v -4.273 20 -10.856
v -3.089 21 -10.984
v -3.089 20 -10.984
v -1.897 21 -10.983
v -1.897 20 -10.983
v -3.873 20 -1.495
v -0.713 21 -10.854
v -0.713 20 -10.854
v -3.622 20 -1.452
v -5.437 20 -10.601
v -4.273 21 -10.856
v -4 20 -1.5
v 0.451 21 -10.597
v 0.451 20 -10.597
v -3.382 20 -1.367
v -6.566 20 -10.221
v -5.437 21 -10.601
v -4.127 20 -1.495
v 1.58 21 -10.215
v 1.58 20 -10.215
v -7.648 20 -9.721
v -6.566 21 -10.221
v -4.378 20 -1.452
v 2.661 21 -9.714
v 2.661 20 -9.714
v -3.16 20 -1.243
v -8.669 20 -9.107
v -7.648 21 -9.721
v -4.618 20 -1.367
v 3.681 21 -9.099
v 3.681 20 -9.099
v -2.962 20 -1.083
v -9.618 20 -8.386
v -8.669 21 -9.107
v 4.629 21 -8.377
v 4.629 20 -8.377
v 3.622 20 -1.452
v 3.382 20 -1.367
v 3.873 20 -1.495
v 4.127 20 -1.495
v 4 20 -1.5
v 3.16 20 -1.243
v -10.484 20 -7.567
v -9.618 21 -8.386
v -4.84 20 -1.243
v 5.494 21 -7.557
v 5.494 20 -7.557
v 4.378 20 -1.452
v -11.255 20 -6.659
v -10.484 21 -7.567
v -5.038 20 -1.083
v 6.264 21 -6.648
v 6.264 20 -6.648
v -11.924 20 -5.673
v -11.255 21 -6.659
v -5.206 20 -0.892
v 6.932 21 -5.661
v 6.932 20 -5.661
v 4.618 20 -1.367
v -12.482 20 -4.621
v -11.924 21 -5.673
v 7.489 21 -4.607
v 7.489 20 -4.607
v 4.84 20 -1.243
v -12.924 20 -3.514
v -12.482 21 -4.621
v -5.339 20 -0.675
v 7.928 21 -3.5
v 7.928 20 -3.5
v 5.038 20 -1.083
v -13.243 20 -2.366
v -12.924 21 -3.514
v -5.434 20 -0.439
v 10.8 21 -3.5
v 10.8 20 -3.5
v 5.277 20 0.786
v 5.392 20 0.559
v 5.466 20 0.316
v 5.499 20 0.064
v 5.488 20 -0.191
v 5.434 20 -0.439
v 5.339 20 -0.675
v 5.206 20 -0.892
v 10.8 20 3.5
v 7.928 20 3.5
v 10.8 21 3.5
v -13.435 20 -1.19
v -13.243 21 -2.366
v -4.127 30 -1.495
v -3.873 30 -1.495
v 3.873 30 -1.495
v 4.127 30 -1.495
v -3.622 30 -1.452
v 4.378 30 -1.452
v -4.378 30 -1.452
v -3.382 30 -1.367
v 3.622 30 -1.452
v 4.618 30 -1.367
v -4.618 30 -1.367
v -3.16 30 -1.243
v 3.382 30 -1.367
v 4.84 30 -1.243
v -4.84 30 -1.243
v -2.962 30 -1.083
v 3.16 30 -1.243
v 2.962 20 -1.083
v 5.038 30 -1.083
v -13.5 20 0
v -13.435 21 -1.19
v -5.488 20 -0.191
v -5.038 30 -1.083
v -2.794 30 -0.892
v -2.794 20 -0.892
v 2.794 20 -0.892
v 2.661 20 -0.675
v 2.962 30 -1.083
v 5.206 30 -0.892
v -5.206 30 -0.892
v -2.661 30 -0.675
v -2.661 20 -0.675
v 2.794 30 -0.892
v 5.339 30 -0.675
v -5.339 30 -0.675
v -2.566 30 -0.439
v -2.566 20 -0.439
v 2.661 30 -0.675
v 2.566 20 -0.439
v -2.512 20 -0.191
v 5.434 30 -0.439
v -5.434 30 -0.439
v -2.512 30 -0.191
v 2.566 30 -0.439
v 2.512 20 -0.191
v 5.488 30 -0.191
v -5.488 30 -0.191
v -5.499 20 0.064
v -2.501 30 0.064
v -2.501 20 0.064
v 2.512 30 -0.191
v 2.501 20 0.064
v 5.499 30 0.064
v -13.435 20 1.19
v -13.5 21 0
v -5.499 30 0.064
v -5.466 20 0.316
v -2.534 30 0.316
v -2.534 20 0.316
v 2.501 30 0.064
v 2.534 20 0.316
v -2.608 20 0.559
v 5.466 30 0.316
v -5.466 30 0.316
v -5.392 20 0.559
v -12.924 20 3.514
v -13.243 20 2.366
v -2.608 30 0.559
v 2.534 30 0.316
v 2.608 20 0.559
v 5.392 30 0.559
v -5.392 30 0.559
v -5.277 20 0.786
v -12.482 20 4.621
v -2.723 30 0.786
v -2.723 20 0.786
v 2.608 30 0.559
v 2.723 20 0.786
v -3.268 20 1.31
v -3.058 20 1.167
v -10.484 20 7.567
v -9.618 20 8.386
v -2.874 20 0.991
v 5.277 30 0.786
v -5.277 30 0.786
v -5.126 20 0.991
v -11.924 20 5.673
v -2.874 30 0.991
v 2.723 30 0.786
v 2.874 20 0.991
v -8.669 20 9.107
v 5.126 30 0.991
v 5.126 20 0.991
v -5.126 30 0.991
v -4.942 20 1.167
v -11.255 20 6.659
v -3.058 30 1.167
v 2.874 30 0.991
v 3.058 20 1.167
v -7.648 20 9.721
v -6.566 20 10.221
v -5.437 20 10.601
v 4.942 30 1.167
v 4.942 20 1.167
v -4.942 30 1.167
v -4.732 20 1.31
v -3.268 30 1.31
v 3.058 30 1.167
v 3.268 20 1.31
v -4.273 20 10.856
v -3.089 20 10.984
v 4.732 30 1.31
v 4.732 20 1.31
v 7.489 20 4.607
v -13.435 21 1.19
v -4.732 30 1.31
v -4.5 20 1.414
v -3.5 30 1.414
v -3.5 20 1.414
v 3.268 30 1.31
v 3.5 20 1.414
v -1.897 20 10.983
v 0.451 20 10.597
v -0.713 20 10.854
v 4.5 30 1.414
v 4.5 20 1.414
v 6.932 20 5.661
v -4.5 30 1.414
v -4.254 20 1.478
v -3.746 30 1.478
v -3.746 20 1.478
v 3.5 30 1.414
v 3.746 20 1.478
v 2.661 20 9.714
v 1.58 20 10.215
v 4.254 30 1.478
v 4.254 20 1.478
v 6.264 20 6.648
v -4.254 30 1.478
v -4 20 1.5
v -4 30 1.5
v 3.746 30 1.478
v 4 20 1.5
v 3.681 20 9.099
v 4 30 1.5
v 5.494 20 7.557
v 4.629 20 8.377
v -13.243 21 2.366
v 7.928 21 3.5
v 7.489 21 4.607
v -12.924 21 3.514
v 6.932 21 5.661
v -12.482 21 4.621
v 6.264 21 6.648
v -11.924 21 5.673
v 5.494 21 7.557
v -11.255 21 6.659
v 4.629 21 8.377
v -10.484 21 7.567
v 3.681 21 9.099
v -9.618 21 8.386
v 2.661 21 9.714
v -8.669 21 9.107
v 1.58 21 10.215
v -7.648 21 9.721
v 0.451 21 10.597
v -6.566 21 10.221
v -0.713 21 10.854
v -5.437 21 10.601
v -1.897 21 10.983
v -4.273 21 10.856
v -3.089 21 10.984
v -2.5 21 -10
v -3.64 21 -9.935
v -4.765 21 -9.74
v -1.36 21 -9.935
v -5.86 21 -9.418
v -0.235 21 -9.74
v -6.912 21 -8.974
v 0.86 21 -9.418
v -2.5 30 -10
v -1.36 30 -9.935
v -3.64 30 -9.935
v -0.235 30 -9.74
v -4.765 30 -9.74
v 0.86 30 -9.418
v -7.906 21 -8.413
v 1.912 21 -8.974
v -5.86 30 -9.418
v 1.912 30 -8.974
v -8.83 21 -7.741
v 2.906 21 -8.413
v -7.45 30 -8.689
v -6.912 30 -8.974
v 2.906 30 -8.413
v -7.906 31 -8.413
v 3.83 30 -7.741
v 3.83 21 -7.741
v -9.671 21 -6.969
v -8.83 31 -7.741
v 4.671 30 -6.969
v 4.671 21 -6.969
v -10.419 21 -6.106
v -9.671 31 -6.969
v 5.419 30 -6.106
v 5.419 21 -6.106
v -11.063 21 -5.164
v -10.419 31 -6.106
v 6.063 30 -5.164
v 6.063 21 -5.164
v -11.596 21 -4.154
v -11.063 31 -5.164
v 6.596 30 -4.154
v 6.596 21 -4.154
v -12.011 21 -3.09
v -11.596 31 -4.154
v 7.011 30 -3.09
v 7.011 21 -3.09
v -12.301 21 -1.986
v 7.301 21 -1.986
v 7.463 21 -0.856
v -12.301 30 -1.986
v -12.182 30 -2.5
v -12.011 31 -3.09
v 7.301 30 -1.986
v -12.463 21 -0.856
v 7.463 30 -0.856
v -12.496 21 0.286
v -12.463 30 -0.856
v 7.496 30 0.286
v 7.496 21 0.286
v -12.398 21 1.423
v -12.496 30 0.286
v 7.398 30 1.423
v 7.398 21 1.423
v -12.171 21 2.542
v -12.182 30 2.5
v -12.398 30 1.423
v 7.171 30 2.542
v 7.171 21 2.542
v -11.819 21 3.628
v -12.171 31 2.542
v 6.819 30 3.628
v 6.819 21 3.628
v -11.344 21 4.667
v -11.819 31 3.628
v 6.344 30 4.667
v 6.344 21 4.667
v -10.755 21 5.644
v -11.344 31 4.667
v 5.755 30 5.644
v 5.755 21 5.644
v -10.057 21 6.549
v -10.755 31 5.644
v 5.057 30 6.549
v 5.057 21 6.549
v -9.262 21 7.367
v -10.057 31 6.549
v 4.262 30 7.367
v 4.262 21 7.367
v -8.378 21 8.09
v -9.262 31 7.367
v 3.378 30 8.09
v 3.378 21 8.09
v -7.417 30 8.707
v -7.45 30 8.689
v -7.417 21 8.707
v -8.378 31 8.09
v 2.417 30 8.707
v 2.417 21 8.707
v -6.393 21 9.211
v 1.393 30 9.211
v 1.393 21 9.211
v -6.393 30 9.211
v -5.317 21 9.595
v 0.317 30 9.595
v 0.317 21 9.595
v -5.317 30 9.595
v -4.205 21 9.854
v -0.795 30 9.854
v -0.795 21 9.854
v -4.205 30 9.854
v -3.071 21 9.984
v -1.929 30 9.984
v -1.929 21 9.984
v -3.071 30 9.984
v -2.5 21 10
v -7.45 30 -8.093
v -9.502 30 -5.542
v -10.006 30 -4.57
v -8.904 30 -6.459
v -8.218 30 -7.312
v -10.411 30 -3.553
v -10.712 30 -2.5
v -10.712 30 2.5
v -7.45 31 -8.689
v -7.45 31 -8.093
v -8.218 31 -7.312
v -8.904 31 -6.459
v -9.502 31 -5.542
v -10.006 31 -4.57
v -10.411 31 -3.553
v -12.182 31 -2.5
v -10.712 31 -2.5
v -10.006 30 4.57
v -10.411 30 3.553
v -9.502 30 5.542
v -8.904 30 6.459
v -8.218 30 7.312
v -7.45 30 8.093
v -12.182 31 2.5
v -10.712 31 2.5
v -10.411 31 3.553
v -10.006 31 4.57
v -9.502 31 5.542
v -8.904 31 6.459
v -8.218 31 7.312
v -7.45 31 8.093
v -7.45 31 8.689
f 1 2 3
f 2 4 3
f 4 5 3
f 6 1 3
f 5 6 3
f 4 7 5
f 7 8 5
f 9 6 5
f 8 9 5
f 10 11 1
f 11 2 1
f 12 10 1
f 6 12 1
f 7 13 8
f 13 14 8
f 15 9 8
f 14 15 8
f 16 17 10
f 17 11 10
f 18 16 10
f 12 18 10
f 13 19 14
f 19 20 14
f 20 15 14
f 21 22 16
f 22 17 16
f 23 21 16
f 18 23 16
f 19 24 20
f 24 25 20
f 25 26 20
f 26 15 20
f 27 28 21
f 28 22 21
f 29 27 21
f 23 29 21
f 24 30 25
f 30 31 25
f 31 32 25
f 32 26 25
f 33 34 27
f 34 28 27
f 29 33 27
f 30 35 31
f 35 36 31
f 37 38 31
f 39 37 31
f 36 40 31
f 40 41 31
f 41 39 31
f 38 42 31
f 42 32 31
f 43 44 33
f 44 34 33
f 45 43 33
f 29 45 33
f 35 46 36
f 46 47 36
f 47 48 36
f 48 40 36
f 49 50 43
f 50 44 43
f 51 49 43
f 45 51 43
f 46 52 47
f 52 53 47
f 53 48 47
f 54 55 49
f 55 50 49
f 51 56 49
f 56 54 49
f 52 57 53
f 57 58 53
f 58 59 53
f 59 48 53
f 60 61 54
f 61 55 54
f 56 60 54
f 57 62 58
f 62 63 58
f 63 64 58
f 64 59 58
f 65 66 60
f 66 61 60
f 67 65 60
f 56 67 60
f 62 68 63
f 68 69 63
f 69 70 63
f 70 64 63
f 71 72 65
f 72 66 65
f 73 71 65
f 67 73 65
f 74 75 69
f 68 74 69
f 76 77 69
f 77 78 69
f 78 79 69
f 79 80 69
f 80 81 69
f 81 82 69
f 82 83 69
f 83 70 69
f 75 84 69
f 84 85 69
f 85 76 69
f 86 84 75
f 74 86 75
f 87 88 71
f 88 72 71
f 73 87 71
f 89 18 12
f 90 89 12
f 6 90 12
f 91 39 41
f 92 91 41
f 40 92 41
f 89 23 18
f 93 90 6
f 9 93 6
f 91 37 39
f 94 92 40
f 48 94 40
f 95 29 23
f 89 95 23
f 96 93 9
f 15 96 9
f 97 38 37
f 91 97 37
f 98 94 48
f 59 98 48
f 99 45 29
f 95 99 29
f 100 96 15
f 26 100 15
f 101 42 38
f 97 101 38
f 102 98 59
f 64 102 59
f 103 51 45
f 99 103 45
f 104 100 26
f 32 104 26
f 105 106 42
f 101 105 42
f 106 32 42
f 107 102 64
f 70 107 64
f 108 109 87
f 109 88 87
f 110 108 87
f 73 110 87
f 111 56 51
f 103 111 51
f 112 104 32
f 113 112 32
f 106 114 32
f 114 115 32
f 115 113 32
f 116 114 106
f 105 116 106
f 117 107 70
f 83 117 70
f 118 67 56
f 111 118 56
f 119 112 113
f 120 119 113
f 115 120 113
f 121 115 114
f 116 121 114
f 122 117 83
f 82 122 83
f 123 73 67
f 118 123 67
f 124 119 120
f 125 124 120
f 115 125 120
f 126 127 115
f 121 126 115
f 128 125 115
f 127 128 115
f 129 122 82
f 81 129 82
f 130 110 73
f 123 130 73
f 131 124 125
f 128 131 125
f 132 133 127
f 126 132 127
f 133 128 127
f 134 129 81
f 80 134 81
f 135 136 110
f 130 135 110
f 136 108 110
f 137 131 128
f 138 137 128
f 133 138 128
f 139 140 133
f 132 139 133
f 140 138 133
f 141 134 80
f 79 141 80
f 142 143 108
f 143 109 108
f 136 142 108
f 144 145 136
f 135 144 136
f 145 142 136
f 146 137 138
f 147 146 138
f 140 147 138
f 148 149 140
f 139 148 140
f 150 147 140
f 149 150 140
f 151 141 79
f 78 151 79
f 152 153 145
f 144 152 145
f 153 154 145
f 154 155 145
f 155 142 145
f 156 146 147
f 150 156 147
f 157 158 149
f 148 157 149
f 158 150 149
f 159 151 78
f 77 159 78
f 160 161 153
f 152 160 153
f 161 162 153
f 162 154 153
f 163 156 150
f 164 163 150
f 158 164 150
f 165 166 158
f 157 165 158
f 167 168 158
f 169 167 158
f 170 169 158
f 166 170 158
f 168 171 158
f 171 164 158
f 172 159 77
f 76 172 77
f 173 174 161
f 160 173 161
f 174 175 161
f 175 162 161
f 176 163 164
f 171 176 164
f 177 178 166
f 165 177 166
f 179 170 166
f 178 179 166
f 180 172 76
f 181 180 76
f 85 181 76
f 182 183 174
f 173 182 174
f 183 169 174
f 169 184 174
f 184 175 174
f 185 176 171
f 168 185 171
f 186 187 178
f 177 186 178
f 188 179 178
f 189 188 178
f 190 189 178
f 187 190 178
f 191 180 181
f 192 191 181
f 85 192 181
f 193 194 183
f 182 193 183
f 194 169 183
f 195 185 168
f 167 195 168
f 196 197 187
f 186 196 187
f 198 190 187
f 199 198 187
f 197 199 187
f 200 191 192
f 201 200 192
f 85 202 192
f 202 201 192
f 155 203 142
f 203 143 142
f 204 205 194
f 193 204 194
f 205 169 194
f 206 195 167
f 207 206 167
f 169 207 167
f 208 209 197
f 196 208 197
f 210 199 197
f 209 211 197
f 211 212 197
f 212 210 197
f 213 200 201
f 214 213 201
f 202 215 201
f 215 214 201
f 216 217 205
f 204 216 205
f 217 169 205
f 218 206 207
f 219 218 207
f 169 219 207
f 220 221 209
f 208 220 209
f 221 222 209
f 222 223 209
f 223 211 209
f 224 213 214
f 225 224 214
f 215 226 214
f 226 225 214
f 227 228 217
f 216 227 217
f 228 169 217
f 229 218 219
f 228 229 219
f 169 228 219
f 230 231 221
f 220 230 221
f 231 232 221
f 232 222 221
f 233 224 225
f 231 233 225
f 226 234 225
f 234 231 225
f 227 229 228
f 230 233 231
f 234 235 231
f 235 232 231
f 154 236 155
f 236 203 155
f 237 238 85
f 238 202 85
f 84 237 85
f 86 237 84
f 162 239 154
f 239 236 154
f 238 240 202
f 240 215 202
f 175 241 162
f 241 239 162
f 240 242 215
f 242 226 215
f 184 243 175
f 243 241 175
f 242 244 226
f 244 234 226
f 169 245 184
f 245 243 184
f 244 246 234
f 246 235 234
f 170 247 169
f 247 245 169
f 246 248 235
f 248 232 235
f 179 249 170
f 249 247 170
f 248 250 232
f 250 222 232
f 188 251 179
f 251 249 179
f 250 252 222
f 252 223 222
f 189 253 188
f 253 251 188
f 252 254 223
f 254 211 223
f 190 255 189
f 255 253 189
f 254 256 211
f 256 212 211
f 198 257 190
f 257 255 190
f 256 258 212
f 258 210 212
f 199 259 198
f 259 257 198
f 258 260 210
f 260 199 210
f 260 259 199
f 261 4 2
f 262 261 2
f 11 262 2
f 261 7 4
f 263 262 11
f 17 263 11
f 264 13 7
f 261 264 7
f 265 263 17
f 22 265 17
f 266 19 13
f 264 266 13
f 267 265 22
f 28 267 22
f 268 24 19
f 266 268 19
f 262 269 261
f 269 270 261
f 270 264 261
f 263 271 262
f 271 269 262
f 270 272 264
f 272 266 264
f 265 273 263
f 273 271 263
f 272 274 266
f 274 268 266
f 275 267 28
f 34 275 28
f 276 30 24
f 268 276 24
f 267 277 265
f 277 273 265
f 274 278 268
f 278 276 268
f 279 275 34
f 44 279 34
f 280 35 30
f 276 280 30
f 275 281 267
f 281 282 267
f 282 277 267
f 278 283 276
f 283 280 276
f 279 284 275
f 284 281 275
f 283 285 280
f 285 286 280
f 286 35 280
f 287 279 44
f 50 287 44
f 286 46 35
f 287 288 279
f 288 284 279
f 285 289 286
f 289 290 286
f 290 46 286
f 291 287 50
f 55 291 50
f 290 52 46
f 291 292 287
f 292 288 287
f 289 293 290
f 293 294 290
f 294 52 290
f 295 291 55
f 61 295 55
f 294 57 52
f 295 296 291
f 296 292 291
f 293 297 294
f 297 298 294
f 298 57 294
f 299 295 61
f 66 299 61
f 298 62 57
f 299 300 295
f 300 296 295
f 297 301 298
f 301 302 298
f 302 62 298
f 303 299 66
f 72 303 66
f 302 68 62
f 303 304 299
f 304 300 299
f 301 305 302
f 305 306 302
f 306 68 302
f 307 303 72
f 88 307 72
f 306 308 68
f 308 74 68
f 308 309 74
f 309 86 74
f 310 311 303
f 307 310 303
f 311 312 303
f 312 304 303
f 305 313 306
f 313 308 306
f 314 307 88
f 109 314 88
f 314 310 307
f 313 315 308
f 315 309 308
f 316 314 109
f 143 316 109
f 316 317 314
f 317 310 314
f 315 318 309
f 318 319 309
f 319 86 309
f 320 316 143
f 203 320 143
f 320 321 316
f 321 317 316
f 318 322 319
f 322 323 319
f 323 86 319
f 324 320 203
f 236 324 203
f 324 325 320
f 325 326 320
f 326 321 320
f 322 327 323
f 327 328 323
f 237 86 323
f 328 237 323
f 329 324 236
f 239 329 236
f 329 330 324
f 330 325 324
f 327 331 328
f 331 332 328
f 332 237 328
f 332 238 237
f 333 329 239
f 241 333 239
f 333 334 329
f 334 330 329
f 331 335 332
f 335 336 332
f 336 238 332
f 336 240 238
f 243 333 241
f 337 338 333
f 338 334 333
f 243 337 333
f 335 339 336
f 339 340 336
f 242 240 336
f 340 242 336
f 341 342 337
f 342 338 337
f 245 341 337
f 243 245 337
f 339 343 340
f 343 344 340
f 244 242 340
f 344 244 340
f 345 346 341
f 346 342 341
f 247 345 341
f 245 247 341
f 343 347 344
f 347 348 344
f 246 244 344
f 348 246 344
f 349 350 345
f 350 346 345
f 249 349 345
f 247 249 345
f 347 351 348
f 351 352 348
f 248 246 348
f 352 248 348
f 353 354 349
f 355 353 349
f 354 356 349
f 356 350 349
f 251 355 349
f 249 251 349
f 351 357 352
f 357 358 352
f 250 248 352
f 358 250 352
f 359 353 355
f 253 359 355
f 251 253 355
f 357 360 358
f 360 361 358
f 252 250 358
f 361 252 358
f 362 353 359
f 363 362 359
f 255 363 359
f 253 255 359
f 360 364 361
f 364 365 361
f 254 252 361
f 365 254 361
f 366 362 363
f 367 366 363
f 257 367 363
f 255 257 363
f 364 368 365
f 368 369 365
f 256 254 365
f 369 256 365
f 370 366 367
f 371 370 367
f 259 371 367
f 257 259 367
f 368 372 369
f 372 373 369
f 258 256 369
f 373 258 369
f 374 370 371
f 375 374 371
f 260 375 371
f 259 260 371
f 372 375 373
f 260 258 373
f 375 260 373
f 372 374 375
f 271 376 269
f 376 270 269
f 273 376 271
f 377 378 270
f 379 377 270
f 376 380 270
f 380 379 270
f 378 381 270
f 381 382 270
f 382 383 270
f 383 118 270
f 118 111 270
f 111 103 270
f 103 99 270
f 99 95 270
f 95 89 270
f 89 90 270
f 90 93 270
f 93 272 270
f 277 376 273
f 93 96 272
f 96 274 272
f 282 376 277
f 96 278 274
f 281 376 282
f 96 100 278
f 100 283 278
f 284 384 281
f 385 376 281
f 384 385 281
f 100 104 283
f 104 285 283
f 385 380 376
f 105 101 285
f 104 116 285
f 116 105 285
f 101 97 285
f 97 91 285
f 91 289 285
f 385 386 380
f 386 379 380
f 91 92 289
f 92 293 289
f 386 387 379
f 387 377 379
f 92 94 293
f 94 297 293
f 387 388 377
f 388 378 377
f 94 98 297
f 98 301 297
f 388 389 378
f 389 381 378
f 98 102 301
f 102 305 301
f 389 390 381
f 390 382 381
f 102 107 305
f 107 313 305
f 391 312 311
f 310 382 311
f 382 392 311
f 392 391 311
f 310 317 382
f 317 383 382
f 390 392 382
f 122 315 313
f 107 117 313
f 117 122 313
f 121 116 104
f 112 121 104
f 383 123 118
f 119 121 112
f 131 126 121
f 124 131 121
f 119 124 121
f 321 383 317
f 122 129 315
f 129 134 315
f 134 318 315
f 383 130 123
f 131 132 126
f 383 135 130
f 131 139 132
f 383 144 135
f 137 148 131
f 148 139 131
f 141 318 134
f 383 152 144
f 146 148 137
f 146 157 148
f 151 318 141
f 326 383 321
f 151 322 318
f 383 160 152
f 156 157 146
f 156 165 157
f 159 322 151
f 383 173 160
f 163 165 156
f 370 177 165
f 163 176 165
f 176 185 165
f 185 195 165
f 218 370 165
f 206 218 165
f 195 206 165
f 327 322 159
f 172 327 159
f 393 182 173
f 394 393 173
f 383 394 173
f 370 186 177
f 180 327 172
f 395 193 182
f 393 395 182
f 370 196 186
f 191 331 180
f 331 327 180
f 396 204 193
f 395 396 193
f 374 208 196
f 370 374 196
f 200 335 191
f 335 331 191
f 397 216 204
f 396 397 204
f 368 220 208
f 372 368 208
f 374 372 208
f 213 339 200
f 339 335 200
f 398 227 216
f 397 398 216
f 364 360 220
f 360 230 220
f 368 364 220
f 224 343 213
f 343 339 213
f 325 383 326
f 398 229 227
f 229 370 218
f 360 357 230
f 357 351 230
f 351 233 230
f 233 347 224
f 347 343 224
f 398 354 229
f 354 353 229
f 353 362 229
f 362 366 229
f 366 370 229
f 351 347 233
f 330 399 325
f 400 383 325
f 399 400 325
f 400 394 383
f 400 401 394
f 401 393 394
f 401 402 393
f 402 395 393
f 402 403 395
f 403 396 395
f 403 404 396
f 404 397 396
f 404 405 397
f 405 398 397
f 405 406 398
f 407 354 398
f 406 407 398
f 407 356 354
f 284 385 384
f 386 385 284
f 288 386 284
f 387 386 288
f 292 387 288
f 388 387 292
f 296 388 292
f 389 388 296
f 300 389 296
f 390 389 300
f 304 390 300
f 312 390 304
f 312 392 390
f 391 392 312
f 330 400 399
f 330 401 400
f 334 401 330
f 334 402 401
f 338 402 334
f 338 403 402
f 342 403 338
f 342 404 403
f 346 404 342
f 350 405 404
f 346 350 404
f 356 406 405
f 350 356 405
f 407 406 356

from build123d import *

# Parameters (mm, degrees)
STOCK_ECCENTRIC_START               = 21
STOCK_ECCENTRIC_SHAFT_1_OUTLINE_R   = 10
STOCK_ECCENTRIC_SHAFT_1_OUTLINE_R_2 = 1.5
STOCK_ECCENTRIC_SHAFT_1_DEPTH       = 9
STOCK_ECCENTRIC_START_2             = 30
STOCK_ECCENTRIC_SHAFT_1_2_DEPTH     = 1
BOSS_EXTRUDE1_START                 = 1
SKETCH1_R                           = 10
SKETCH1_R_2                         = 1.5
BOSS_EXTRUDE1_DEPTH                 = 1
CUT_EXTRUDE1_START                  = -1
CUT_EXTRUDE1_DEPTH                  = 1


# Read off the part's stored shape, not the designer's step: Stock-Eccentric Shaft-1
with BuildPart() as part:
    # Stock-Eccentric Shaft-1 outline → Stock-Eccentric Shaft-1 (new body)
    with BuildSketch(Plane(origin=(0, 0, 0), x_dir=(1, 0, 0), z_dir=(0, 1, 0)).offset(STOCK_ECCENTRIC_START)):
        with Locations((-2.5, 0)):
            Circle(STOCK_ECCENTRIC_SHAFT_1_OUTLINE_R)
        with Locations((-4, 0)):
            Circle(STOCK_ECCENTRIC_SHAFT_1_OUTLINE_R_2, mode=Mode.SUBTRACT)
        with Locations((4, 0)):
            Circle(STOCK_ECCENTRIC_SHAFT_1_OUTLINE_R_2, mode=Mode.SUBTRACT)
    extrude(amount=STOCK_ECCENTRIC_SHAFT_1_DEPTH)

    # Stock-Eccentric Shaft-1 2 outline → Stock-Eccentric Shaft-1 2 (add)
    with BuildSketch(Plane(origin=(0, 0, 0), x_dir=(1, 0, 0), z_dir=(0, 1, 0)).offset(STOCK_ECCENTRIC_START_2)):
        with BuildLine():
            ThreePointArc((-10.712142643, 2.5), (-8.817418729, 6.576710953), (-5.45, 9.554972527))
            ThreePointArc((-5.45, 9.554972527), (-9.734494483, 6.903773575), (-12.182458366, 2.5))
            Line((-12.182458366, 2.5), (-10.712142643, 2.5))
        make_face()
        with BuildLine():
            ThreePointArc((-12.182458366, -2.5), (-9.734494483, -6.903773575), (-5.45, -9.554972527))
            ThreePointArc((-5.45, -9.554972527), (-8.817418729, -6.576710953), (-10.712142643, -2.5))
            Line((-10.712142643, -2.5), (-12.182458366, -2.5))
        make_face()
    extrude(amount=STOCK_ECCENTRIC_SHAFT_1_2_DEPTH)

    # Sketch1 → Boss-Extrude1 (add)
    # profile 1 of 4: a face of its own
    with BuildSketch(Plane.XZ.offset(-21).offset(BOSS_EXTRUDE1_START)):
        with BuildLine():
            Line((7.928326807, -3.5), (7.8, -3.5))
            Line((7.8, -3.5), (7.8, 3.5))
            Line((7.8, 3.5), (7.928326807, 3.5))
            ThreePointArc((7.928326807, 3.5), (-13.5, 0), (7.928326807, -3.5))
        make_face()
        with Locations(Location((-2.5, 0, 0), (0, 0, 252.842462628))):
            Circle(SKETCH1_R, mode=Mode.SUBTRACT)
    # profile 2 of 4: a face of its own
    with BuildSketch(Plane.XZ.offset(-21).offset(BOSS_EXTRUDE1_START)):
        with Locations(Location((-2.5, 0, 0), (0, 0, 252.842462628))):
            Circle(SKETCH1_R)
        with Locations(Location((4, 0, 0), (0, 0, 90))):
            Circle(SKETCH1_R_2, mode=Mode.SUBTRACT)
        with Locations(Location((-4, 0, 0), (0, 0, 90))):
            Circle(SKETCH1_R_2, mode=Mode.SUBTRACT)
    # profile 3 of 4: a face of its own
    with BuildSketch(Plane.XZ.offset(-21).offset(BOSS_EXTRUDE1_START)):
        with BuildLine():
            Line((7.8, 3.5), (7.8, -3.5))
            Line((7.8, -3.5), (7.928326807, -3.5))
            ThreePointArc((7.928326807, -3.5), (8.356141001, -1.773189939), (8.5, 0))
            ThreePointArc((8.5, 0), (8.356141001, 1.773189939), (7.928326807, 3.5))
            Line((7.928326807, 3.5), (7.8, 3.5))
        make_face()
    # profile 4 of 4: a face of its own
    with BuildSketch(Plane.XZ.offset(-21).offset(BOSS_EXTRUDE1_START)):
        with BuildLine():
            ThreePointArc((8.5, 0), (8.356141001, -1.773189939), (7.928326807, -3.5))
            Line((7.928326807, -3.5), (10.8, -3.5))
            Line((10.8, -3.5), (10.8, 3.5))
            Line((10.8, 3.5), (7.928326807, 3.5))
            ThreePointArc((7.928326807, 3.5), (8.356141001, 1.773189939), (8.5, 0))
        make_face()
    extrude(amount=-BOSS_EXTRUDE1_DEPTH)

    # Sketch2 → Cut-Extrude1 (cut)
    with BuildSketch(Plane(origin=(0, 31, 0), x_dir=(1, 0, 0), z_dir=(0, 1, 0)).offset(CUT_EXTRUDE1_START)):
        with BuildLine():
            ThreePointArc((-5.45, 9.554972527), (-6.473664245, 9.176600268), (-7.45, 8.688929738))
            Line((-7.45, 8.688929738), (-7.45, 8.093052576))
            ThreePointArc((-7.45, 8.093052576), (-6.491286659, 8.880495342), (-5.45, 9.554972527))
        make_face()
        with BuildLine():
            ThreePointArc((-5.45, -9.554972527), (-6.491286659, -8.880495342), (-7.45, -8.093052576))
            Line((-7.45, -8.093052576), (-7.45, -8.688929738))
            ThreePointArc((-7.45, -8.688929738), (-6.473664245, -9.176600268), (-5.45, -9.554972527))
        make_face()
    extrude(amount=CUT_EXTRUDE1_DEPTH, mode=Mode.SUBTRACT)


solid = part.part
